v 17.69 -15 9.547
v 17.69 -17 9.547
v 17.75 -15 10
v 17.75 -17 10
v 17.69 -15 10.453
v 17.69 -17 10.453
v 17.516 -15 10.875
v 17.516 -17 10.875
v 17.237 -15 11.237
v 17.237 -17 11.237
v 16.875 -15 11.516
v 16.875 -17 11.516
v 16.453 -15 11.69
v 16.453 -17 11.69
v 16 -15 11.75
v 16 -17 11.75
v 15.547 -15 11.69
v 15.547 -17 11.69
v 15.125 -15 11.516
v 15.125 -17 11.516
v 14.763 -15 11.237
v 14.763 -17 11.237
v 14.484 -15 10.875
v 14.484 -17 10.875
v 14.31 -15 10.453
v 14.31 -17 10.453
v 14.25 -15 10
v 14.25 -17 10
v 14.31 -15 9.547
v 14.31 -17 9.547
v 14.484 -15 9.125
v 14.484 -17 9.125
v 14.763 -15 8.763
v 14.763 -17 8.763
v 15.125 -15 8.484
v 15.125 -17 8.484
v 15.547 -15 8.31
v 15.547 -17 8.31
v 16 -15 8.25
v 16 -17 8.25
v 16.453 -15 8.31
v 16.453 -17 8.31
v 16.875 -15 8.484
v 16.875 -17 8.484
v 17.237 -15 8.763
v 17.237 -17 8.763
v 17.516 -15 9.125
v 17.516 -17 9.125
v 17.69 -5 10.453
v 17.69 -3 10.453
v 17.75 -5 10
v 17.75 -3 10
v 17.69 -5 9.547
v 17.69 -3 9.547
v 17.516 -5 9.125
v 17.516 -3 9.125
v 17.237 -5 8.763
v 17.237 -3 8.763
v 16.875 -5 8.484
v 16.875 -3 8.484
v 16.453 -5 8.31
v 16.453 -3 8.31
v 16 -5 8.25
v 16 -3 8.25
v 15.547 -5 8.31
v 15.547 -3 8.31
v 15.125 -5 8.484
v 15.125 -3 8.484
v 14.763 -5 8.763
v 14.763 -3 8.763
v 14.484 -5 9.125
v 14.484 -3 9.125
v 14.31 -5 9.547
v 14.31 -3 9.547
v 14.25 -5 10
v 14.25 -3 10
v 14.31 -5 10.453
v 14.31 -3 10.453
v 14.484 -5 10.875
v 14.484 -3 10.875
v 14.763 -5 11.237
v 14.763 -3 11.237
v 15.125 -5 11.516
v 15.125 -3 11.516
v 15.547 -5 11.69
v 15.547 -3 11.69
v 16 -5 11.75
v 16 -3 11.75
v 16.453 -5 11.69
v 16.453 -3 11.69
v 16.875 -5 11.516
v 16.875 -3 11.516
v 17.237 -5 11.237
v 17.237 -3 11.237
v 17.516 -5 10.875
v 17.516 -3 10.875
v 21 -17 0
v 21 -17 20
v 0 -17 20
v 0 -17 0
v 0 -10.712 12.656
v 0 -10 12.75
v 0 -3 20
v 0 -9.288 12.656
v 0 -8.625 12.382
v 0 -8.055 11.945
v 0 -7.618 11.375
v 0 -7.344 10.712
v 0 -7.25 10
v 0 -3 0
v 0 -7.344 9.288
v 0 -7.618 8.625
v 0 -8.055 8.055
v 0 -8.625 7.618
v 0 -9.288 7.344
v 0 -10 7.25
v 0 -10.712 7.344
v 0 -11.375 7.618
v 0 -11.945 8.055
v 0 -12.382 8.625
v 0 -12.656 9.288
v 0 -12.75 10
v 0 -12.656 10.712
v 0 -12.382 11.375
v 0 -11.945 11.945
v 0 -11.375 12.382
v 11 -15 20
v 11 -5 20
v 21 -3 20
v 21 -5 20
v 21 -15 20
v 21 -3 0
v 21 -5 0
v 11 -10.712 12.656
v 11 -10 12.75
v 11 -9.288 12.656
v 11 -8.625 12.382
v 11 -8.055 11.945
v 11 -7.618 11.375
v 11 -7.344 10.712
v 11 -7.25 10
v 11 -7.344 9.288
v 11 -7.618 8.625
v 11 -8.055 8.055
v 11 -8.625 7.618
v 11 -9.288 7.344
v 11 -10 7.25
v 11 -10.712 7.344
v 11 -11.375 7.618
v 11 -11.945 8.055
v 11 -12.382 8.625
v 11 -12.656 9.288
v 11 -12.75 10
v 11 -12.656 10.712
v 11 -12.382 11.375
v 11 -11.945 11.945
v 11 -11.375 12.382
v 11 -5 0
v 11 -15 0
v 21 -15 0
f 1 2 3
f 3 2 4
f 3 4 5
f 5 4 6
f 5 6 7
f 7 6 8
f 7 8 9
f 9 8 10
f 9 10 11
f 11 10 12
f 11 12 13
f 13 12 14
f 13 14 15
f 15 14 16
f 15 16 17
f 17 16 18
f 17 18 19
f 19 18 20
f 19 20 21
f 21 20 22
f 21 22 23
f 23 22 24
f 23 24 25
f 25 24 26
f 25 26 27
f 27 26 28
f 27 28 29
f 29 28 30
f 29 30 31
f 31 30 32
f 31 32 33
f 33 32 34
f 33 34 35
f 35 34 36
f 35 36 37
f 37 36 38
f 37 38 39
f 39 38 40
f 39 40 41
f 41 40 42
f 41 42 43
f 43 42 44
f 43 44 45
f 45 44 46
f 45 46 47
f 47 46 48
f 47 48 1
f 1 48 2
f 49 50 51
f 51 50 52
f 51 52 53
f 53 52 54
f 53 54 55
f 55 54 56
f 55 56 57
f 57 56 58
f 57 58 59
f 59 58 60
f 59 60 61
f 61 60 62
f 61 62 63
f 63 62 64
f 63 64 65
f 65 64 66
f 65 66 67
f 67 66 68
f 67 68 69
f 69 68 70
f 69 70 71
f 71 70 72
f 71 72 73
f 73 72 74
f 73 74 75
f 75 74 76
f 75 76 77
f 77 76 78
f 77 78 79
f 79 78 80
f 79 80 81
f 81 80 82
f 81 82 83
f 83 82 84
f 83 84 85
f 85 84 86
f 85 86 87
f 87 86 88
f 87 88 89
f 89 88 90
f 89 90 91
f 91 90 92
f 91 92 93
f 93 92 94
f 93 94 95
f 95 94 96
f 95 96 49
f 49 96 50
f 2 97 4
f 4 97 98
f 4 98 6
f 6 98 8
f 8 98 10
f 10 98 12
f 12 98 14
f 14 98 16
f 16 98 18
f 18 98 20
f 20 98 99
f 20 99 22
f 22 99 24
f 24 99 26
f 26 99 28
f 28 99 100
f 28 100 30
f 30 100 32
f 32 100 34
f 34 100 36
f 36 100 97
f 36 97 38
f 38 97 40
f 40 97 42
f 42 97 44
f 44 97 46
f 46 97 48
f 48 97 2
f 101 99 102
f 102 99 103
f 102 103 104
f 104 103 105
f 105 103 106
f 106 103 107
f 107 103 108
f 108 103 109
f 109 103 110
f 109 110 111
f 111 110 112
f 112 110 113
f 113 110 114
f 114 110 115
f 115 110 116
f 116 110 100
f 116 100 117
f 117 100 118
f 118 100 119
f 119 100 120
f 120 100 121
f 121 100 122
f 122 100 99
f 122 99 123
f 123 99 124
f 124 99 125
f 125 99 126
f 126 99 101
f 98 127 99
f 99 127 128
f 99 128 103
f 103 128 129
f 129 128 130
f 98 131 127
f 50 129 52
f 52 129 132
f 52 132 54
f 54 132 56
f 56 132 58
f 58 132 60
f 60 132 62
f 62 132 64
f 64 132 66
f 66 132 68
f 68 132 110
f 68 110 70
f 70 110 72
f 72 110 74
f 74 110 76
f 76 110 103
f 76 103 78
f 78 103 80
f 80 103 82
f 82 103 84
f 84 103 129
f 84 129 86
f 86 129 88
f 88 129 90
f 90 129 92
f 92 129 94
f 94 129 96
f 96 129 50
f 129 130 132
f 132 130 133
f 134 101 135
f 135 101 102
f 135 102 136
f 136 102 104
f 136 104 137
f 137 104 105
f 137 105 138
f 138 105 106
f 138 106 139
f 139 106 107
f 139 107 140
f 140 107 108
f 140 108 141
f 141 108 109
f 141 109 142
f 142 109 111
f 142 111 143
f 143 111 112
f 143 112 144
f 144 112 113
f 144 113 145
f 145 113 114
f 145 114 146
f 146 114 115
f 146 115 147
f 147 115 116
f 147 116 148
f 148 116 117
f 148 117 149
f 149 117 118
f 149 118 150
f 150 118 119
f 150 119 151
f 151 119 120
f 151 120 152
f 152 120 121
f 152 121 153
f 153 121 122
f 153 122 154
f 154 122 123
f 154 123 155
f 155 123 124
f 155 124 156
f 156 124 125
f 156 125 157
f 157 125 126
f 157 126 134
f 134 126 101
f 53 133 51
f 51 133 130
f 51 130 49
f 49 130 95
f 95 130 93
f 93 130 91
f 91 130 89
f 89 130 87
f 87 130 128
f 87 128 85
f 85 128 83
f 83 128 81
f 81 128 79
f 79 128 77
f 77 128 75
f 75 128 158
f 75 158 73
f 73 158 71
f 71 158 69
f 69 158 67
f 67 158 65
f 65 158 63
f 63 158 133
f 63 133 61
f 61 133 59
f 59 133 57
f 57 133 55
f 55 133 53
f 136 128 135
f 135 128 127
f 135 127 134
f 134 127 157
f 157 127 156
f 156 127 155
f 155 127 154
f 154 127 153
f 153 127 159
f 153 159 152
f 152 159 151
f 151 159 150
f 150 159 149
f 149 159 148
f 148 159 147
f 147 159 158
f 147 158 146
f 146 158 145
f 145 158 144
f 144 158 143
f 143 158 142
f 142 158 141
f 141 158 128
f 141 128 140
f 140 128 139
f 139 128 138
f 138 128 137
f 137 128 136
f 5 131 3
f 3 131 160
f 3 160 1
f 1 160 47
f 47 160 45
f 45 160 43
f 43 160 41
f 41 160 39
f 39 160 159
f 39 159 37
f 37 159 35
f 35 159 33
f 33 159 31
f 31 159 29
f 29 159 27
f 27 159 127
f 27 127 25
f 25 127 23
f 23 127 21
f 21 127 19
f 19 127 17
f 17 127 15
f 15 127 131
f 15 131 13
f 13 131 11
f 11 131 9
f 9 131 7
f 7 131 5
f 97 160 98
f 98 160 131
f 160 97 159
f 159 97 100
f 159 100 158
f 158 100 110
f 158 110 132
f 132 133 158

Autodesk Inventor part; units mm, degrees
ref_plane "YZ Plane" through (0, 0, 0) normal (1, 0, 0) x (0, 1, 0)
ref_plane "XZ Plane" through (0, 0, 0) normal (0, 1, 0) x (-1, 0, 0)
ref_plane "XY Plane" through (0, 0, 0) normal (0, 0, 1) x (1, 0, 0)
sketch "Sketch1" plane through (0, 0, 0) normal (0, 0, 1) x (1, 0, 0)
  line L0 (0, 0) -> (0, -20)
  line L1 (0, -20) -> (21, -20)
  line L2 (21, -20) -> (21, -15)
  line L3 (21, -15) -> (11, -15)
  line L4 (11, -15) -> (11, -5)
  line L5 (11, -5) -> (21, -5)
  line L6 (21, -5) -> (21, 0)
  line L7 (21, 0) -> (0, 0)
  dimension "d0" = 20
  dimension "d1" = 21
  dimension "d2" = 5
  dimension "d3" = 10
  dimension "d4" = 10
  dimension "d5" = 90
extrude "Extrusion1" add sketch "Sketch1" along normal blind 20
sketch "Sketch2" plane through (0, 0, 20) normal (0, 0, 1) x (1, 0, 0)
  point P0 (0, 0)
sketch "Sketch3" plane through (0, -20, 0) normal (-1, 0, 0) x (0, 0, 1)
  point P0 (0, 20)
sketch "Sketch4" plane through (0, -20, 0) normal (-1, 0, 0) x (0, 0, 1)
  line L0 (20, 20) -> (20, 0) projected
  line L1 (0, 20) -> (20, 20)
  line L2 (20, 20) -> (20, 0)
  line L3 (20, 0) -> (0, 0)
  line L4 (0, 0) -> (0, 20)
  circle A0 centre (10, 10) radius 2.75
  dimension "d8" = 5.5
  dimension "d9" = 10
  dimension "d10" = 10
extrude "Extrusion2" cut sketch "Sketch4" against normal blind 11 contours A0
sketch "Sketch5" plane through (0, 0, 0) normal (0, 1, 0) x (1, 0, 0)
  point P0 (0, 0)
sketch "Sketch6" plane through (0, 0, 0) normal (0, 1, 0) x (1, 0, 0)
  line L0 (21, 0) -> (21, -20) projected
  line L1 (0, 0) -> (21, 0)
  line L2 (21, 0) -> (21, -20)
  line L3 (21, -20) -> (0, -20)
  line L4 (0, -20) -> (0, 0)
extrude "Extrusion3" cut sketch "Sketch6" against normal blind 3
sketch "Sketch7" plane through (0, -20, 0) normal (0, -1, 0) x (1, 0, 0)
  line L0 (0, 0) -> (21, 0) projected
  line L1 (0, 20) -> (21, 20) projected
  line L2 (0, 0) -> (21, 0)
  line L3 (21, 0) -> (21, 20)
  line L4 (21, 20) -> (0, 20)
  line L5 (0, 20) -> (0, 0)
extrude "Extrusion4" cut sketch "Sketch7" against normal blind 3
sketch "Sketch8" plane through (0, -3, 0) normal (0, 1, 0) x (1, 0, 0)
  point P0 (0, 0)
sketch "Sketch9" plane through (0, -3, 0) normal (0, 1, 0) x (1, 0, 0)
  line L0 (0, -20) -> (21, -20) projected
  line L1 (0, 0) -> (21, 0)
  line L2 (21, 0) -> (21, -20)
  line L3 (21, -20) -> (0, -20)
  line L4 (0, -20) -> (0, 0)
  line L5 (0, 0) -> (21, 0) projected
  line L6 (0, 0) -> (11, 0)
  line L7 (11, 0) -> (11, -20)
  circle A0 centre (16, -10) radius 1.75
  dimension "d17" = 11
  dimension "d18" = 3.5
  dimension "d19" = 5
  dimension "d20" = 10
extrude "Extrusion5" cut sketch "Sketch9" against normal blind 3.5 contours A0
sketch "Sketch10" plane through (0, -17, 0) normal (0, -1, 0) x (1, 0, 0)
  line L0 (11, 20) -> (21, 20) projected
  line L1 (0, 0) -> (21, 0)
  line L2 (21, 0) -> (21, 20)
  line L3 (21, 20) -> (0, 20)
  line L4 (0, 20) -> (0, 0)
  line L5 (11, 0) -> (11, 20) projected
  line L6 (11, 20) -> (11, 0)
  circle A0 centre (16, 10) radius 1.75
  dimension "d23" = 3.5
  dimension "d24" = 5
  dimension "d25" = 10
extrude "Extrusion6" cut sketch "Sketch10" against normal blind 3.5 contours A0
properties part number "Encaixe Bandeja-Motor"
